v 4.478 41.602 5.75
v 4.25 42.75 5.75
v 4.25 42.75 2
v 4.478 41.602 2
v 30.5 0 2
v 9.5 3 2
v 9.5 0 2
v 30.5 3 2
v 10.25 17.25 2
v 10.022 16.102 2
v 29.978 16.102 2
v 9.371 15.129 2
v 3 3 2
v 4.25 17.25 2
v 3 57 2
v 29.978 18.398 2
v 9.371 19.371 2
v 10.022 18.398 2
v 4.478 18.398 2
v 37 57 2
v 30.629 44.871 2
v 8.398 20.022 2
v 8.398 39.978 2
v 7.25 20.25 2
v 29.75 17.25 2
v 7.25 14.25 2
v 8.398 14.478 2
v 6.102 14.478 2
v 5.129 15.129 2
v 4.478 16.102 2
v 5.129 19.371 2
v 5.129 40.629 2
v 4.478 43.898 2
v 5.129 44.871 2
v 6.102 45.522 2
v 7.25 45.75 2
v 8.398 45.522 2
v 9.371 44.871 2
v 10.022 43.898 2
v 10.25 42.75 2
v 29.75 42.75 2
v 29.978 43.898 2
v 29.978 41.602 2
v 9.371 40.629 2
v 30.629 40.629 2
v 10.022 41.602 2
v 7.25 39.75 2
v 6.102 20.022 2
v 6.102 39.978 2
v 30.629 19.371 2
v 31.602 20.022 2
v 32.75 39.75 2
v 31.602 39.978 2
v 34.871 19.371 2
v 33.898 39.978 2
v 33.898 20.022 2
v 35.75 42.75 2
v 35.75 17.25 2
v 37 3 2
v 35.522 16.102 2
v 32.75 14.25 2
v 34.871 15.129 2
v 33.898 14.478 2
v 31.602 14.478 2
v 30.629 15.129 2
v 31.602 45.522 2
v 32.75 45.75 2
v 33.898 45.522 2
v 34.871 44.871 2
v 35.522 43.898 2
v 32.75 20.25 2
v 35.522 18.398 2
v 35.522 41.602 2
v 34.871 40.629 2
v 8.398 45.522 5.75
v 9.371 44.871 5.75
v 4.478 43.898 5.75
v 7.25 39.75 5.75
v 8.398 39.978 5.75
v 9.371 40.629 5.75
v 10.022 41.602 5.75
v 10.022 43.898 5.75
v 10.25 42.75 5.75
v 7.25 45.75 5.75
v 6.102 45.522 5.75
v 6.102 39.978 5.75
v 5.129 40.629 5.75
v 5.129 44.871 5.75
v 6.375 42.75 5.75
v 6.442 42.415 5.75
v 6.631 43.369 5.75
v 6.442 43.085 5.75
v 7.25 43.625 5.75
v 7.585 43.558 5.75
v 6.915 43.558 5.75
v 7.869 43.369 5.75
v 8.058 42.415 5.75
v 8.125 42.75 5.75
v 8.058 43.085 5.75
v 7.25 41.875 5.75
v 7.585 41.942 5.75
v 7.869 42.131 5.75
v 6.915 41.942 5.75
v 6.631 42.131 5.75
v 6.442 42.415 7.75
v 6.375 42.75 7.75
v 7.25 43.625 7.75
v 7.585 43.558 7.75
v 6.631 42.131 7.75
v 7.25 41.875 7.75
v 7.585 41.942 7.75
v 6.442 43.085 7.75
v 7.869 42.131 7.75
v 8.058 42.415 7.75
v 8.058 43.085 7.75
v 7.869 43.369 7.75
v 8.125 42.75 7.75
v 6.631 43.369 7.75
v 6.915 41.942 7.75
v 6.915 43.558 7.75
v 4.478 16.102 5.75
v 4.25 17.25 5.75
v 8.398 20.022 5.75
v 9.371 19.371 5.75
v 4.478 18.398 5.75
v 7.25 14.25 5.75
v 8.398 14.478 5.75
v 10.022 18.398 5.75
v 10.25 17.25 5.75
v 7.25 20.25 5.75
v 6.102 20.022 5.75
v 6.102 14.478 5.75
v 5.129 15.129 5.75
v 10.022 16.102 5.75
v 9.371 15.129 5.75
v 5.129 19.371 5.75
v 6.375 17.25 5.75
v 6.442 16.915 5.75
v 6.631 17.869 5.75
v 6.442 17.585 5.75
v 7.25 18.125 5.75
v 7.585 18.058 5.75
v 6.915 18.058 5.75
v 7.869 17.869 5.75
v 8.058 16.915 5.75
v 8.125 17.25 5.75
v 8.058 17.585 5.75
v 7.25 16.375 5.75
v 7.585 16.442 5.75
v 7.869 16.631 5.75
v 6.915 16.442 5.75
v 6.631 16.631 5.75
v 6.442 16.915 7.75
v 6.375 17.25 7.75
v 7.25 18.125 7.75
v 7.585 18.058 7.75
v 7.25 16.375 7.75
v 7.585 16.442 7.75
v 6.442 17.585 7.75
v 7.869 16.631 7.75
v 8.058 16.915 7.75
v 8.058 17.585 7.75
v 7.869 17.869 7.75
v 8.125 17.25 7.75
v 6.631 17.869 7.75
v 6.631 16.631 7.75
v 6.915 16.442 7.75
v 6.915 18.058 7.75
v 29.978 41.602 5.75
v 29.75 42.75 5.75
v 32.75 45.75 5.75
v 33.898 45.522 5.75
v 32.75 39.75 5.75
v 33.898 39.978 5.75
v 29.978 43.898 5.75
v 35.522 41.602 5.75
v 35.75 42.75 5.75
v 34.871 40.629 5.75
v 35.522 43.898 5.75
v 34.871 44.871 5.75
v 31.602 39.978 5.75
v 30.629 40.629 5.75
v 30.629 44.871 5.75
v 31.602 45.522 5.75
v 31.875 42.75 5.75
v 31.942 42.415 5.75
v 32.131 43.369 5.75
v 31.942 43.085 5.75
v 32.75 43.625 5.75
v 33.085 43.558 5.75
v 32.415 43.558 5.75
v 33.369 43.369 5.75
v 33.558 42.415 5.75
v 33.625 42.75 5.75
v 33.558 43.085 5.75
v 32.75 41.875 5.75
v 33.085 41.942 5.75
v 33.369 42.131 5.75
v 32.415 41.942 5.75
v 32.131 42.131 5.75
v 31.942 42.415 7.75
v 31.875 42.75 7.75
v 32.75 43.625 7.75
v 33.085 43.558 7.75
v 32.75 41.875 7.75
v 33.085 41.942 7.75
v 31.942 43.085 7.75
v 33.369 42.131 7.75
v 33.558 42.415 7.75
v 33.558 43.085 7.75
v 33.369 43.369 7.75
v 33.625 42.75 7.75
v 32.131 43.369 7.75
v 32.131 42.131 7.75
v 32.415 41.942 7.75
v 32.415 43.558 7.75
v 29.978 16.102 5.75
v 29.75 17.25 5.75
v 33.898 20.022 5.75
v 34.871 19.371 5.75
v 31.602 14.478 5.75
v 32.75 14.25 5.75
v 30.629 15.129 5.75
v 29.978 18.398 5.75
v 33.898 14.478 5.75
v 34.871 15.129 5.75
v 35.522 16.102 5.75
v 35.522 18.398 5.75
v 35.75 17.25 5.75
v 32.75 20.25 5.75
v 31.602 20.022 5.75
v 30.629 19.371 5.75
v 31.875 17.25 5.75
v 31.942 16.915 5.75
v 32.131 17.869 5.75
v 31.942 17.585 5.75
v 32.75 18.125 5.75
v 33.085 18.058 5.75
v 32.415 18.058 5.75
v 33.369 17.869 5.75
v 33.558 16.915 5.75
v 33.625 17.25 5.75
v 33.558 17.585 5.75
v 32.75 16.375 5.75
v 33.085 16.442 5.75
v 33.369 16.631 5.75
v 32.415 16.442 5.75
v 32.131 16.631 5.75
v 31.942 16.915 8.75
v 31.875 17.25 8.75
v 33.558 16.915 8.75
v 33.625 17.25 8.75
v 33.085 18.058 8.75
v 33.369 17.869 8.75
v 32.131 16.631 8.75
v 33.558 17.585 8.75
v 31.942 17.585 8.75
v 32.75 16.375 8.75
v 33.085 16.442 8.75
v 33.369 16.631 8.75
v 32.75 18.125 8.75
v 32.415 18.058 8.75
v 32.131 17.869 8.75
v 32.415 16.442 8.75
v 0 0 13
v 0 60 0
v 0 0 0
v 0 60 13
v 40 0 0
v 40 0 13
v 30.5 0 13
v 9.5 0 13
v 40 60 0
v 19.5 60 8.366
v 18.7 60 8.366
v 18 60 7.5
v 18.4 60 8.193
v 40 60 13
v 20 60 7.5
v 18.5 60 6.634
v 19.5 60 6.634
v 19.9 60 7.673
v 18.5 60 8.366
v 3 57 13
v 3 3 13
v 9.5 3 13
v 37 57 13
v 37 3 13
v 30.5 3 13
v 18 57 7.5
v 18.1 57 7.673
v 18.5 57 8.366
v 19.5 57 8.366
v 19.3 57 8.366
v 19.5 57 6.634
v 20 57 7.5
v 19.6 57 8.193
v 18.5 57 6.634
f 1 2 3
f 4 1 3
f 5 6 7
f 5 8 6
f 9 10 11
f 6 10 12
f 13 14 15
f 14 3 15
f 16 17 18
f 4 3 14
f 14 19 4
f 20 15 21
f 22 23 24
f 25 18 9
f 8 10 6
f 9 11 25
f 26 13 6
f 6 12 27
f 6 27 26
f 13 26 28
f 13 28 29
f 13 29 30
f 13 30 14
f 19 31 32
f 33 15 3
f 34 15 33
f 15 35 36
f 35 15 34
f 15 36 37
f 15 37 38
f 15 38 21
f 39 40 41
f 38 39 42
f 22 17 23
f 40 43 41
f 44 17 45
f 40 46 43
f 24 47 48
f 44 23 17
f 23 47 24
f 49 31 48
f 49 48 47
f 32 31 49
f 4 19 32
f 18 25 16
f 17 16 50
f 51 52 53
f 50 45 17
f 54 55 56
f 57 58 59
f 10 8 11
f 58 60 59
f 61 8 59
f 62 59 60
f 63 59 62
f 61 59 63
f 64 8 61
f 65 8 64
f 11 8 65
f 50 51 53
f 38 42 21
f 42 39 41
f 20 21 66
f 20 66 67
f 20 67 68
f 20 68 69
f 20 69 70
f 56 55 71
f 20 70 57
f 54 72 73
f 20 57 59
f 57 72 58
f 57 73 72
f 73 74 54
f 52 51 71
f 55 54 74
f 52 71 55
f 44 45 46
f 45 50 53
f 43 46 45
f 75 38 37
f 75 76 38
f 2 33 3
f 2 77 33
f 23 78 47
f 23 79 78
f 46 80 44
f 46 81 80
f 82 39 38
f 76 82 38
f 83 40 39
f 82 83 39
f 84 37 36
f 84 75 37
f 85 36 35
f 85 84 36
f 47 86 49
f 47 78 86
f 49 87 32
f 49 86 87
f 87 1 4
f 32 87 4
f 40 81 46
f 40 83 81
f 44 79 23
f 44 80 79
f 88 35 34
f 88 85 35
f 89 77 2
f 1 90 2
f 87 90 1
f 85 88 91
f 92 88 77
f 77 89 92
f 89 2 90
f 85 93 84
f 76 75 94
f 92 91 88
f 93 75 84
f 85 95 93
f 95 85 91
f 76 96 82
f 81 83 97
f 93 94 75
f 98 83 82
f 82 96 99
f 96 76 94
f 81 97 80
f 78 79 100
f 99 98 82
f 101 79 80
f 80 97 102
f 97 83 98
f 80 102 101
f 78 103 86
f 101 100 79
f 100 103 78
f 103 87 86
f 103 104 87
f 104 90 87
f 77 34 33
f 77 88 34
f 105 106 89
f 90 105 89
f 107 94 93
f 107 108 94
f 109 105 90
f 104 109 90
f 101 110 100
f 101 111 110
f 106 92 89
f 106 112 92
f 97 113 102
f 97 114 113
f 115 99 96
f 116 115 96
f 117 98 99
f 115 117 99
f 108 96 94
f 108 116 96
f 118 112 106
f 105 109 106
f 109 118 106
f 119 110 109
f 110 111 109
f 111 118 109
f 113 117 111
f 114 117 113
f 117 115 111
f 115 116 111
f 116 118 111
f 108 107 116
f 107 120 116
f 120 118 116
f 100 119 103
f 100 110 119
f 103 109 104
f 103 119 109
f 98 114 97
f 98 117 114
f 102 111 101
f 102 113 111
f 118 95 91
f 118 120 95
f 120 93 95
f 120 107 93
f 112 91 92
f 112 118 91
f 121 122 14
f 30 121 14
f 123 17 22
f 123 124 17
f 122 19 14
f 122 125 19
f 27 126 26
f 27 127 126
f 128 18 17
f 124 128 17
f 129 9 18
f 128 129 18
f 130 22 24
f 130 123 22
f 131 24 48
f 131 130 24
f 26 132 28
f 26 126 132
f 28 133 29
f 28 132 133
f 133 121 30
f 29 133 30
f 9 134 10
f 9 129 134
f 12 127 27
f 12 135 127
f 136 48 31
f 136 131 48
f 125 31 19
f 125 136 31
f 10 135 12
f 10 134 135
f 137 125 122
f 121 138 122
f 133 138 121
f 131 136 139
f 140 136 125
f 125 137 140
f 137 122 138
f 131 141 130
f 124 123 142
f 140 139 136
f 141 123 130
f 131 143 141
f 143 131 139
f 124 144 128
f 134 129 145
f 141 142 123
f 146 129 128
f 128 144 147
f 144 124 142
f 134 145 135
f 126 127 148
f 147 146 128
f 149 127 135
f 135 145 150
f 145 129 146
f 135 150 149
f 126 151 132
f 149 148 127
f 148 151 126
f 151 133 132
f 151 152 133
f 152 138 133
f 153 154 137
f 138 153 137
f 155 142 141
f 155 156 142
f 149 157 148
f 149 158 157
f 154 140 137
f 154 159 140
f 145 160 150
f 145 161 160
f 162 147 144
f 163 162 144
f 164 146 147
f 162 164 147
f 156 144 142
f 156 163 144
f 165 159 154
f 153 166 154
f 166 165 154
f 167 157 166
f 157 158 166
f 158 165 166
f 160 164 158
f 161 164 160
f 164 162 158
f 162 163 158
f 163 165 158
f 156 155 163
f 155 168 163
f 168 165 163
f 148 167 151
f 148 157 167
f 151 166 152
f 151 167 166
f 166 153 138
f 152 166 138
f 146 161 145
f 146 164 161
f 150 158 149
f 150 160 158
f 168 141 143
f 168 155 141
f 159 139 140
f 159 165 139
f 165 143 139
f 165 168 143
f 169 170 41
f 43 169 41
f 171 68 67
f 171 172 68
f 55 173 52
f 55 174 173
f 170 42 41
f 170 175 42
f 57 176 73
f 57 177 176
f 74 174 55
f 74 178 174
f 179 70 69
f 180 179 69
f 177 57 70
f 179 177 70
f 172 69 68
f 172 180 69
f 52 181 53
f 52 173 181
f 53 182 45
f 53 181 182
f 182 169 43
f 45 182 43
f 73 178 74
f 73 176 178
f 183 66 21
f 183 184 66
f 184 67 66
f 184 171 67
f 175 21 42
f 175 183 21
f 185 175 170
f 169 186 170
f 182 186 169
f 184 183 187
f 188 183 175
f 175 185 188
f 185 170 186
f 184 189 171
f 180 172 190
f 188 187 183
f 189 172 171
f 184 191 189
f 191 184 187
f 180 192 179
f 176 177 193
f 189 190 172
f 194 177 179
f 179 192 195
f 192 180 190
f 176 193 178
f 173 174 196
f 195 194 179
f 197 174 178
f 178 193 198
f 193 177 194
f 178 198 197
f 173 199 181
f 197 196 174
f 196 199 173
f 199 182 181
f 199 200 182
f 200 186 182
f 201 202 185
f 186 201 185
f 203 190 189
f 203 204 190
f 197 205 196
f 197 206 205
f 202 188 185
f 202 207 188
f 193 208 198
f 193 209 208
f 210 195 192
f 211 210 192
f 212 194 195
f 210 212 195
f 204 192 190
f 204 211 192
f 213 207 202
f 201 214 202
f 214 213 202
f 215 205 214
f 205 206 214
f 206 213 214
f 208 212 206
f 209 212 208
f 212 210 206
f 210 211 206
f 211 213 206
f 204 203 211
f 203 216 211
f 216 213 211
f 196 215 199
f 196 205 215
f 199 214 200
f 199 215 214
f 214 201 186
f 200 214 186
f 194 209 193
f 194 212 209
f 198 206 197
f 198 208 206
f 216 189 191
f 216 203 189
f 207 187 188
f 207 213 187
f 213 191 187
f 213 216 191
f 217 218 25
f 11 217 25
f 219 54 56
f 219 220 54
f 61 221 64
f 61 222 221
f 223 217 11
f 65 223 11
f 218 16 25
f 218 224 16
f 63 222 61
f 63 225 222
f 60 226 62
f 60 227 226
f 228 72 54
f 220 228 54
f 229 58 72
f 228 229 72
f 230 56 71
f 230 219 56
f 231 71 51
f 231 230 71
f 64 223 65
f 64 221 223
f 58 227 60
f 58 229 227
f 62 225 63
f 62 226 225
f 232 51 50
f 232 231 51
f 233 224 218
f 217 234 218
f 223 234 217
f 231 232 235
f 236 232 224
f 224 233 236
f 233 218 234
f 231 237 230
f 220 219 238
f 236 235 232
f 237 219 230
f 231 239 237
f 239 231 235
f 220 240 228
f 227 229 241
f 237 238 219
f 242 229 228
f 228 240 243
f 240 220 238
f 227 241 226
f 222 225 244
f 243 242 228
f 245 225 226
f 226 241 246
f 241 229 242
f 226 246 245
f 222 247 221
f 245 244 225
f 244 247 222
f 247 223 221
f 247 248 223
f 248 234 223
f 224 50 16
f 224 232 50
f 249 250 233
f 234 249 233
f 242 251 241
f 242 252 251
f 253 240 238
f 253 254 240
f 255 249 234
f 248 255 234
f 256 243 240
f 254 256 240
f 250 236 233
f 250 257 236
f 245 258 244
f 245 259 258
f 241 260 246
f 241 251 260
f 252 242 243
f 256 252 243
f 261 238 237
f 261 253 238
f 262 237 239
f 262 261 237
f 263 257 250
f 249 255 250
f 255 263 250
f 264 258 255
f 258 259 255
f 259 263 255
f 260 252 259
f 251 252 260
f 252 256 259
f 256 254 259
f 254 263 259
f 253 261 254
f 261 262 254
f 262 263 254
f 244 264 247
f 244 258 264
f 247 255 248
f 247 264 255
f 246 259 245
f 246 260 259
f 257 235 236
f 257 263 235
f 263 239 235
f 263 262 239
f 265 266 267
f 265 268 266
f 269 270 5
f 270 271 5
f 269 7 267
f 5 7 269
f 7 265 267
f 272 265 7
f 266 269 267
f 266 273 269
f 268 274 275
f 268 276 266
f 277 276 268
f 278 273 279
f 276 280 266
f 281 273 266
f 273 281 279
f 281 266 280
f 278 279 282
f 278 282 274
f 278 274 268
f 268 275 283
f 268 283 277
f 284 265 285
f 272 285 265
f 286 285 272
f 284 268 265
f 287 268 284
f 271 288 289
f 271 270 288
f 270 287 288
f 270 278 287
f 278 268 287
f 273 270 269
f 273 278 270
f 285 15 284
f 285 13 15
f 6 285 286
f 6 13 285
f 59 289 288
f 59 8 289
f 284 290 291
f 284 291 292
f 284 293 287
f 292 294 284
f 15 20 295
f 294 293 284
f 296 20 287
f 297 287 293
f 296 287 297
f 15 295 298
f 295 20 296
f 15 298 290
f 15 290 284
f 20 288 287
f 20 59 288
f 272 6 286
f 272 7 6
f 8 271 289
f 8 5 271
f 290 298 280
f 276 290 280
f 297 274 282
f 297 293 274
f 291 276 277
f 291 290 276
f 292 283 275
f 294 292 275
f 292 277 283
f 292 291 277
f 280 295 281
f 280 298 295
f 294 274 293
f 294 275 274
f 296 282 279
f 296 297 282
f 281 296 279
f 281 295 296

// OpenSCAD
difference() {
    cube([40, 60, 13]);
    translate([3, 3, 2]) {
        cube([34, 54, 14]);
    }
    translate([9.5, -2, 2]) {
        cube([21, 5, 13]);
    }
    translate([19, 56, 7.5]) {
        rotate([-90, 0, 0]) {
            cylinder(h=5, d=2, $fn=6);
        }
    }
}

translate([7.25, 42.75, 2]) {
    cylinder(h=3.75, d=6, $fn=16);
    cylinder(h=5.75, d=1.75, $fn=16);
}

translate([7.25, 17.25, 2]) {
    cylinder(h=3.75, d=6, $fn=16);
    cylinder(h=5.75, d=1.75, $fn=16);
}

translate([32.75, 42.75, 2]) {
    cylinder(h=3.75, d=6, $fn=16);
    cylinder(h=5.75, d=1.75, $fn=16);
}

translate([32.75, 17.25, 2]) {
    cylinder(h=3.75, d=6, $fn=16);
    cylinder(h=6.75, d=1.75, $fn=16);
}
